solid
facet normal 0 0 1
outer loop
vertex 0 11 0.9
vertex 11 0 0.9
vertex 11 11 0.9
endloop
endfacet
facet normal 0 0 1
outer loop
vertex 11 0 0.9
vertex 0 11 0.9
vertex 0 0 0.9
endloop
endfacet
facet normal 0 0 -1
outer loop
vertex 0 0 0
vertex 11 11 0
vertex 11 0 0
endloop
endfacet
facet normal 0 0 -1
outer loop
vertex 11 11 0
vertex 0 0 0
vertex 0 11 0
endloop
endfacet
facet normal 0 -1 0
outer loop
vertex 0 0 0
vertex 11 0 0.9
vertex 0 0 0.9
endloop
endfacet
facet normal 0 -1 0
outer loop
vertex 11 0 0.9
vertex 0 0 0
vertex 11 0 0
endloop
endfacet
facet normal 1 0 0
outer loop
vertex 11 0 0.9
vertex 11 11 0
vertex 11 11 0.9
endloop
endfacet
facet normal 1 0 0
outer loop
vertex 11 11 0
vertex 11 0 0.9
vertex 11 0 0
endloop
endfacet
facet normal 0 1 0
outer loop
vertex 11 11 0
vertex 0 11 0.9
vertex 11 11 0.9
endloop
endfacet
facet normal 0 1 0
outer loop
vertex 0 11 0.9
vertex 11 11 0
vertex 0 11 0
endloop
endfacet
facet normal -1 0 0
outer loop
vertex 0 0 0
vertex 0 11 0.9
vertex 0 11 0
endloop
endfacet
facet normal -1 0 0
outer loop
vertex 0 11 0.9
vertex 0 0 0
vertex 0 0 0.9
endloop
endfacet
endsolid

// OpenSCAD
/* Warning, this is a very basic generator with a lot of approximation 
input data : [VFLGA, JUC, 11x11x0.9mm, 80, , C, C04-25351C]
generated by com.zoubworld.electronics.cad.model3d.Basic
Date : Sun Feb 15 10:50:49 CET 2026
*/

//body
color("black")
translate([0,0,0])
cube([11.0,11.0,0.9], center=false);
